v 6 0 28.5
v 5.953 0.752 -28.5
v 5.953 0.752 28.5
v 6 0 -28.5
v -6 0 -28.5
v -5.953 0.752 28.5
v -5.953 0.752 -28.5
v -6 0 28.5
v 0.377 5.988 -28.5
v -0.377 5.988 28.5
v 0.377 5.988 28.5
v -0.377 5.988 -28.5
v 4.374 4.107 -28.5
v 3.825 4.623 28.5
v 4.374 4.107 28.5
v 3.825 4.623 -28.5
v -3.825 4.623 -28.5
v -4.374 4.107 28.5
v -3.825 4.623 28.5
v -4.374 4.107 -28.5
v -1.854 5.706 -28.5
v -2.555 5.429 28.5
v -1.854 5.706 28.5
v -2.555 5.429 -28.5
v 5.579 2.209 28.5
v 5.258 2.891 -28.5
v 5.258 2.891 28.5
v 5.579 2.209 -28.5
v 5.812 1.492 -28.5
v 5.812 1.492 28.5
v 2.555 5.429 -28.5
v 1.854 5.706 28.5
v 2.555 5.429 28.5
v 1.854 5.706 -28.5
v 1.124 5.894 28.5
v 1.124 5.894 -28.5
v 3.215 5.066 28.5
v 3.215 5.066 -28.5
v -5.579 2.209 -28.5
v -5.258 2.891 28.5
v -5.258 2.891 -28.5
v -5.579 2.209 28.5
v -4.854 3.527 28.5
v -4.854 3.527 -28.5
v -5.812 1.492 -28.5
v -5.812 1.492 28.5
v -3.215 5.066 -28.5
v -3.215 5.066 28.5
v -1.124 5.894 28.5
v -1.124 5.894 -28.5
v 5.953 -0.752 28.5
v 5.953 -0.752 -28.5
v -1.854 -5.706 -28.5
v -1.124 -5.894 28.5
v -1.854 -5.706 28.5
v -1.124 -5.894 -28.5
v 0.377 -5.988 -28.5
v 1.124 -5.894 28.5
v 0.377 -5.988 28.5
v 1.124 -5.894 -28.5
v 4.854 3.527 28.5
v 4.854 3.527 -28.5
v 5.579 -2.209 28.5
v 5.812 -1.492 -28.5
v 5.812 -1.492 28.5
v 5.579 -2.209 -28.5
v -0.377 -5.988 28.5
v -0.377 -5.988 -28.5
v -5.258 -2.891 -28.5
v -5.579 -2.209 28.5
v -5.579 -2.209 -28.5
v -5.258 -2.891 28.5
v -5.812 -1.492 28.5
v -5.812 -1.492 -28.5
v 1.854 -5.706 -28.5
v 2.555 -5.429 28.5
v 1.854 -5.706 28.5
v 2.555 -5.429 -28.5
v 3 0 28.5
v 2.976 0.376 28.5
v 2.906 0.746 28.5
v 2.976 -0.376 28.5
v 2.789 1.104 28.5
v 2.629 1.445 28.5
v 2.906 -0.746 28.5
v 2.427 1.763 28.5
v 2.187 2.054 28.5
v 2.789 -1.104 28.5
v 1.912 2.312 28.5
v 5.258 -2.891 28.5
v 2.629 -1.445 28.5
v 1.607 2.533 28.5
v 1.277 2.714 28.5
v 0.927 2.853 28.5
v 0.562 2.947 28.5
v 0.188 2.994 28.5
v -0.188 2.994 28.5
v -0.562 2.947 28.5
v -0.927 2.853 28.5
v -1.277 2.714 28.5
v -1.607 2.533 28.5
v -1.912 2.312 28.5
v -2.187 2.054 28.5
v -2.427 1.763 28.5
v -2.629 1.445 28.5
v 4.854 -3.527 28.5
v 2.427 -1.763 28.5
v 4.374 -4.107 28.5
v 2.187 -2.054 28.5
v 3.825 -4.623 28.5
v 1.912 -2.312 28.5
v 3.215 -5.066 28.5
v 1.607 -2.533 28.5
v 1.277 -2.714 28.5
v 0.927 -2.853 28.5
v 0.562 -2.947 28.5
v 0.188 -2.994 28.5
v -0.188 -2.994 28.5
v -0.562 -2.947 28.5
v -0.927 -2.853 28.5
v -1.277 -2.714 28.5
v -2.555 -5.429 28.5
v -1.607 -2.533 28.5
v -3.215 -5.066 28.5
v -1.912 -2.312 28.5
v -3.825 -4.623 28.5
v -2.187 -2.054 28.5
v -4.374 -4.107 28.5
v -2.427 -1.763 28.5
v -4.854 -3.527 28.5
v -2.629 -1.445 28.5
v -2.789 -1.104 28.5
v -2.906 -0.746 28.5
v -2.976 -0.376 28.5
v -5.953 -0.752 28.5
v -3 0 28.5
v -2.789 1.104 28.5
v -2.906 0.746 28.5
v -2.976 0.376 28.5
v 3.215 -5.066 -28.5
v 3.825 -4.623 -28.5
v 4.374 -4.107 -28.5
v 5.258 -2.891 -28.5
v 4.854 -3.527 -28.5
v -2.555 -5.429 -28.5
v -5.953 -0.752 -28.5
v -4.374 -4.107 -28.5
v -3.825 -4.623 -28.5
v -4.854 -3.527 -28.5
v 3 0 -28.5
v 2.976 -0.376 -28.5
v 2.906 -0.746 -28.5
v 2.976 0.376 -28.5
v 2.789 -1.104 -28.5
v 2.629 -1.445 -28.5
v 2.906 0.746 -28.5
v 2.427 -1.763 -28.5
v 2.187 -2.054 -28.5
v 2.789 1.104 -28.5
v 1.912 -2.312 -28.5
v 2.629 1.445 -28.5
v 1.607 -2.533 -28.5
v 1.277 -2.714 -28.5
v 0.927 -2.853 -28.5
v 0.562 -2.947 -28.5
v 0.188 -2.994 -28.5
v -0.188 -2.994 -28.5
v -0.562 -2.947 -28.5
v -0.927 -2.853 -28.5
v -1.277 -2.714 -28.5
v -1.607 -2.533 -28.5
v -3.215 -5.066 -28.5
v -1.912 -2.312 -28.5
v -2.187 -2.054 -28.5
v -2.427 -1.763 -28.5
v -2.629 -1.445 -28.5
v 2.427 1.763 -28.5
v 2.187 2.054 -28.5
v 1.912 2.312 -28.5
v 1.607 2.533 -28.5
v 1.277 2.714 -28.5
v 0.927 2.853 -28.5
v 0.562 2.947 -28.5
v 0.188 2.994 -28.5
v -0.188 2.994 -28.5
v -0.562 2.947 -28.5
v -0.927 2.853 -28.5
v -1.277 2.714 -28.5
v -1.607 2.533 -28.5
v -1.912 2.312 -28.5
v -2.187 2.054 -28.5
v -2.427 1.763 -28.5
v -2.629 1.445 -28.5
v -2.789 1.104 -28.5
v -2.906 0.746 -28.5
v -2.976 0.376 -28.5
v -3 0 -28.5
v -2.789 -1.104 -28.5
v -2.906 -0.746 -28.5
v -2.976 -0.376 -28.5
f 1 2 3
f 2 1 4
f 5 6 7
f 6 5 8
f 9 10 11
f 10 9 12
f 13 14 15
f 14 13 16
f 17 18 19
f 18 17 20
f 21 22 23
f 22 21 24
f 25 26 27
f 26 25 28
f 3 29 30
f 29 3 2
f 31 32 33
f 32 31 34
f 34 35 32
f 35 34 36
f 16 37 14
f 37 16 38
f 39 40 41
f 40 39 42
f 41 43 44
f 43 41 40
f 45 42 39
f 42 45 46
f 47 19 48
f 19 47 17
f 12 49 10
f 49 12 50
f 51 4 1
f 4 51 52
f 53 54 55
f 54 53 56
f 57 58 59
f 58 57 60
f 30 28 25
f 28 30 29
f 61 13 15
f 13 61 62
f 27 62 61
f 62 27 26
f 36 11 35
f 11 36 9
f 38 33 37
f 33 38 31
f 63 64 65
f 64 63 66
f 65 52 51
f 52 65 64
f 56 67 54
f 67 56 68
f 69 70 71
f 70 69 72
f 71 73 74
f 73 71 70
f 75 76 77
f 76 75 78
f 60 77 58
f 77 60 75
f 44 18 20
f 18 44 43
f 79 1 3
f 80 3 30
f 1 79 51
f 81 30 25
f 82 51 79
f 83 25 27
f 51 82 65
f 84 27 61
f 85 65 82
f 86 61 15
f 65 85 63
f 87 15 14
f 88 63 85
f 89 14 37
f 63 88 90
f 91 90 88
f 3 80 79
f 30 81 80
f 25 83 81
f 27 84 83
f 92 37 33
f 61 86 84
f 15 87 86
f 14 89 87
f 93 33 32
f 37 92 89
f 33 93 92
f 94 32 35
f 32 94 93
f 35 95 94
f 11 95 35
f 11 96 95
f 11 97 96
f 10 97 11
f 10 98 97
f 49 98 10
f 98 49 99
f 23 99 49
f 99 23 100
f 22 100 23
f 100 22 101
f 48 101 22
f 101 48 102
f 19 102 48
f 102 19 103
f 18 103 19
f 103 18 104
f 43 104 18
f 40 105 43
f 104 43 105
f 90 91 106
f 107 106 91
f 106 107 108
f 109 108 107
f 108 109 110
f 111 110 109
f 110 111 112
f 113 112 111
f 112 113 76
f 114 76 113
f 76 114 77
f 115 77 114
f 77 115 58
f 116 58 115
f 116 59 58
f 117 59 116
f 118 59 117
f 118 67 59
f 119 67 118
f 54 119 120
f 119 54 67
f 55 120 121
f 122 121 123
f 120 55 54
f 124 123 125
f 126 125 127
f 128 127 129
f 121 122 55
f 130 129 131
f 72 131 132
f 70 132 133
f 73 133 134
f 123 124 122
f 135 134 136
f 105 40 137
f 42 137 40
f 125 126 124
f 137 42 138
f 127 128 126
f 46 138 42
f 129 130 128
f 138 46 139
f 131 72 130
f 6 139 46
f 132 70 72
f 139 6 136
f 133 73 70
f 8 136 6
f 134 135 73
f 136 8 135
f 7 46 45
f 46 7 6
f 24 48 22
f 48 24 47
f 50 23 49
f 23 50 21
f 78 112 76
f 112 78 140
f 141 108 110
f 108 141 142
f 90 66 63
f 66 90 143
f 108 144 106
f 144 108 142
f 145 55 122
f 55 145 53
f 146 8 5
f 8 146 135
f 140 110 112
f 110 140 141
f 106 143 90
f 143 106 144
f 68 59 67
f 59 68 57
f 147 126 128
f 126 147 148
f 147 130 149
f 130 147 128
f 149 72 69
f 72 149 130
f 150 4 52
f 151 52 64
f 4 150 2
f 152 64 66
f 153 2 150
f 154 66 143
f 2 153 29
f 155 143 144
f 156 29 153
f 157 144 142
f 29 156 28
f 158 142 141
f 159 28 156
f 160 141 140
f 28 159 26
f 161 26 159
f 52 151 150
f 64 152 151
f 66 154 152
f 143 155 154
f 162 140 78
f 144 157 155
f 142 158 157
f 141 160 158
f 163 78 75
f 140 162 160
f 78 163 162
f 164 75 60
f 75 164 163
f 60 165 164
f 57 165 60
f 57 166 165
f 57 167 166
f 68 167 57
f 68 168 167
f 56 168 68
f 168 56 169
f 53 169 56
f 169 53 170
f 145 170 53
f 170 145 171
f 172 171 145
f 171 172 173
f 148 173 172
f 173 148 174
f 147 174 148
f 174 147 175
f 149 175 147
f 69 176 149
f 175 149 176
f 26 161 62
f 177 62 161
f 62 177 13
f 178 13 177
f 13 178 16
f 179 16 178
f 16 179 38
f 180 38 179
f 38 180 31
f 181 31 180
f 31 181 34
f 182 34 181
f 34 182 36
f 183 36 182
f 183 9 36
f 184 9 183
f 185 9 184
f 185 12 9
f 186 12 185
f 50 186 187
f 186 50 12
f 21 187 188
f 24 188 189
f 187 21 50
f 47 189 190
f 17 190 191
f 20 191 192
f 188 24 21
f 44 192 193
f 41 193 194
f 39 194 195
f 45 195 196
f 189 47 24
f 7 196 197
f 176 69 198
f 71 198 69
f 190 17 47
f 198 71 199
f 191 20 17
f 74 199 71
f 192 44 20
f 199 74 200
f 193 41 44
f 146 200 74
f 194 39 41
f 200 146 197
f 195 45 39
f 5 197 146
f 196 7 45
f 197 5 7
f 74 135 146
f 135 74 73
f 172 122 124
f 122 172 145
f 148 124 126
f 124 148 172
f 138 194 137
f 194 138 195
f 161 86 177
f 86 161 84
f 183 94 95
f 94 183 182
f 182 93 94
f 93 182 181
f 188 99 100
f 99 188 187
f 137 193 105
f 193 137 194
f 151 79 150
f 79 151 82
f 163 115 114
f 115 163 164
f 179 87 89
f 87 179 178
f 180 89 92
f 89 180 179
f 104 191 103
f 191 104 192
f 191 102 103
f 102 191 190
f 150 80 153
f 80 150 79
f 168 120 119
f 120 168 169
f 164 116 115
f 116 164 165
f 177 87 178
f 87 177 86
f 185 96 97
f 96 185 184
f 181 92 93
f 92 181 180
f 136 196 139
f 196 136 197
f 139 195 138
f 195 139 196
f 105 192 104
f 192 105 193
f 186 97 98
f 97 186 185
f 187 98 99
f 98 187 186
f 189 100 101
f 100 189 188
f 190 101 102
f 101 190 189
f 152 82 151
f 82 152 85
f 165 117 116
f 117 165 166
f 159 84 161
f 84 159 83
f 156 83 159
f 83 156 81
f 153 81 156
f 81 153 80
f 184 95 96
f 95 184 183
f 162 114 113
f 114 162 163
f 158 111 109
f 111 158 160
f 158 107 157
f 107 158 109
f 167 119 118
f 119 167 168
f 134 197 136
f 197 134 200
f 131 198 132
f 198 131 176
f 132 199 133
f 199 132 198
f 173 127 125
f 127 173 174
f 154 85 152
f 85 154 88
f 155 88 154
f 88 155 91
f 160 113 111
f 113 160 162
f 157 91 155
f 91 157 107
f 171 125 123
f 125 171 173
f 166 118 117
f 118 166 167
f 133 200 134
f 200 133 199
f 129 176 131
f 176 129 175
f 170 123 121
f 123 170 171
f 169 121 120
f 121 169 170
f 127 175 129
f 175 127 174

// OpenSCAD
$fn = 50;


difference() {
	union() {
		translate(v = [0, 0, -28.5000000000]) {
			cylinder(h = 57, r = 6.0000000000);
		}
	}
	union() {
		translate(v = [0, 0, -100.0000000000]) {
			cylinder(h = 200, r = 3.0000000000);
		}
	}
}
